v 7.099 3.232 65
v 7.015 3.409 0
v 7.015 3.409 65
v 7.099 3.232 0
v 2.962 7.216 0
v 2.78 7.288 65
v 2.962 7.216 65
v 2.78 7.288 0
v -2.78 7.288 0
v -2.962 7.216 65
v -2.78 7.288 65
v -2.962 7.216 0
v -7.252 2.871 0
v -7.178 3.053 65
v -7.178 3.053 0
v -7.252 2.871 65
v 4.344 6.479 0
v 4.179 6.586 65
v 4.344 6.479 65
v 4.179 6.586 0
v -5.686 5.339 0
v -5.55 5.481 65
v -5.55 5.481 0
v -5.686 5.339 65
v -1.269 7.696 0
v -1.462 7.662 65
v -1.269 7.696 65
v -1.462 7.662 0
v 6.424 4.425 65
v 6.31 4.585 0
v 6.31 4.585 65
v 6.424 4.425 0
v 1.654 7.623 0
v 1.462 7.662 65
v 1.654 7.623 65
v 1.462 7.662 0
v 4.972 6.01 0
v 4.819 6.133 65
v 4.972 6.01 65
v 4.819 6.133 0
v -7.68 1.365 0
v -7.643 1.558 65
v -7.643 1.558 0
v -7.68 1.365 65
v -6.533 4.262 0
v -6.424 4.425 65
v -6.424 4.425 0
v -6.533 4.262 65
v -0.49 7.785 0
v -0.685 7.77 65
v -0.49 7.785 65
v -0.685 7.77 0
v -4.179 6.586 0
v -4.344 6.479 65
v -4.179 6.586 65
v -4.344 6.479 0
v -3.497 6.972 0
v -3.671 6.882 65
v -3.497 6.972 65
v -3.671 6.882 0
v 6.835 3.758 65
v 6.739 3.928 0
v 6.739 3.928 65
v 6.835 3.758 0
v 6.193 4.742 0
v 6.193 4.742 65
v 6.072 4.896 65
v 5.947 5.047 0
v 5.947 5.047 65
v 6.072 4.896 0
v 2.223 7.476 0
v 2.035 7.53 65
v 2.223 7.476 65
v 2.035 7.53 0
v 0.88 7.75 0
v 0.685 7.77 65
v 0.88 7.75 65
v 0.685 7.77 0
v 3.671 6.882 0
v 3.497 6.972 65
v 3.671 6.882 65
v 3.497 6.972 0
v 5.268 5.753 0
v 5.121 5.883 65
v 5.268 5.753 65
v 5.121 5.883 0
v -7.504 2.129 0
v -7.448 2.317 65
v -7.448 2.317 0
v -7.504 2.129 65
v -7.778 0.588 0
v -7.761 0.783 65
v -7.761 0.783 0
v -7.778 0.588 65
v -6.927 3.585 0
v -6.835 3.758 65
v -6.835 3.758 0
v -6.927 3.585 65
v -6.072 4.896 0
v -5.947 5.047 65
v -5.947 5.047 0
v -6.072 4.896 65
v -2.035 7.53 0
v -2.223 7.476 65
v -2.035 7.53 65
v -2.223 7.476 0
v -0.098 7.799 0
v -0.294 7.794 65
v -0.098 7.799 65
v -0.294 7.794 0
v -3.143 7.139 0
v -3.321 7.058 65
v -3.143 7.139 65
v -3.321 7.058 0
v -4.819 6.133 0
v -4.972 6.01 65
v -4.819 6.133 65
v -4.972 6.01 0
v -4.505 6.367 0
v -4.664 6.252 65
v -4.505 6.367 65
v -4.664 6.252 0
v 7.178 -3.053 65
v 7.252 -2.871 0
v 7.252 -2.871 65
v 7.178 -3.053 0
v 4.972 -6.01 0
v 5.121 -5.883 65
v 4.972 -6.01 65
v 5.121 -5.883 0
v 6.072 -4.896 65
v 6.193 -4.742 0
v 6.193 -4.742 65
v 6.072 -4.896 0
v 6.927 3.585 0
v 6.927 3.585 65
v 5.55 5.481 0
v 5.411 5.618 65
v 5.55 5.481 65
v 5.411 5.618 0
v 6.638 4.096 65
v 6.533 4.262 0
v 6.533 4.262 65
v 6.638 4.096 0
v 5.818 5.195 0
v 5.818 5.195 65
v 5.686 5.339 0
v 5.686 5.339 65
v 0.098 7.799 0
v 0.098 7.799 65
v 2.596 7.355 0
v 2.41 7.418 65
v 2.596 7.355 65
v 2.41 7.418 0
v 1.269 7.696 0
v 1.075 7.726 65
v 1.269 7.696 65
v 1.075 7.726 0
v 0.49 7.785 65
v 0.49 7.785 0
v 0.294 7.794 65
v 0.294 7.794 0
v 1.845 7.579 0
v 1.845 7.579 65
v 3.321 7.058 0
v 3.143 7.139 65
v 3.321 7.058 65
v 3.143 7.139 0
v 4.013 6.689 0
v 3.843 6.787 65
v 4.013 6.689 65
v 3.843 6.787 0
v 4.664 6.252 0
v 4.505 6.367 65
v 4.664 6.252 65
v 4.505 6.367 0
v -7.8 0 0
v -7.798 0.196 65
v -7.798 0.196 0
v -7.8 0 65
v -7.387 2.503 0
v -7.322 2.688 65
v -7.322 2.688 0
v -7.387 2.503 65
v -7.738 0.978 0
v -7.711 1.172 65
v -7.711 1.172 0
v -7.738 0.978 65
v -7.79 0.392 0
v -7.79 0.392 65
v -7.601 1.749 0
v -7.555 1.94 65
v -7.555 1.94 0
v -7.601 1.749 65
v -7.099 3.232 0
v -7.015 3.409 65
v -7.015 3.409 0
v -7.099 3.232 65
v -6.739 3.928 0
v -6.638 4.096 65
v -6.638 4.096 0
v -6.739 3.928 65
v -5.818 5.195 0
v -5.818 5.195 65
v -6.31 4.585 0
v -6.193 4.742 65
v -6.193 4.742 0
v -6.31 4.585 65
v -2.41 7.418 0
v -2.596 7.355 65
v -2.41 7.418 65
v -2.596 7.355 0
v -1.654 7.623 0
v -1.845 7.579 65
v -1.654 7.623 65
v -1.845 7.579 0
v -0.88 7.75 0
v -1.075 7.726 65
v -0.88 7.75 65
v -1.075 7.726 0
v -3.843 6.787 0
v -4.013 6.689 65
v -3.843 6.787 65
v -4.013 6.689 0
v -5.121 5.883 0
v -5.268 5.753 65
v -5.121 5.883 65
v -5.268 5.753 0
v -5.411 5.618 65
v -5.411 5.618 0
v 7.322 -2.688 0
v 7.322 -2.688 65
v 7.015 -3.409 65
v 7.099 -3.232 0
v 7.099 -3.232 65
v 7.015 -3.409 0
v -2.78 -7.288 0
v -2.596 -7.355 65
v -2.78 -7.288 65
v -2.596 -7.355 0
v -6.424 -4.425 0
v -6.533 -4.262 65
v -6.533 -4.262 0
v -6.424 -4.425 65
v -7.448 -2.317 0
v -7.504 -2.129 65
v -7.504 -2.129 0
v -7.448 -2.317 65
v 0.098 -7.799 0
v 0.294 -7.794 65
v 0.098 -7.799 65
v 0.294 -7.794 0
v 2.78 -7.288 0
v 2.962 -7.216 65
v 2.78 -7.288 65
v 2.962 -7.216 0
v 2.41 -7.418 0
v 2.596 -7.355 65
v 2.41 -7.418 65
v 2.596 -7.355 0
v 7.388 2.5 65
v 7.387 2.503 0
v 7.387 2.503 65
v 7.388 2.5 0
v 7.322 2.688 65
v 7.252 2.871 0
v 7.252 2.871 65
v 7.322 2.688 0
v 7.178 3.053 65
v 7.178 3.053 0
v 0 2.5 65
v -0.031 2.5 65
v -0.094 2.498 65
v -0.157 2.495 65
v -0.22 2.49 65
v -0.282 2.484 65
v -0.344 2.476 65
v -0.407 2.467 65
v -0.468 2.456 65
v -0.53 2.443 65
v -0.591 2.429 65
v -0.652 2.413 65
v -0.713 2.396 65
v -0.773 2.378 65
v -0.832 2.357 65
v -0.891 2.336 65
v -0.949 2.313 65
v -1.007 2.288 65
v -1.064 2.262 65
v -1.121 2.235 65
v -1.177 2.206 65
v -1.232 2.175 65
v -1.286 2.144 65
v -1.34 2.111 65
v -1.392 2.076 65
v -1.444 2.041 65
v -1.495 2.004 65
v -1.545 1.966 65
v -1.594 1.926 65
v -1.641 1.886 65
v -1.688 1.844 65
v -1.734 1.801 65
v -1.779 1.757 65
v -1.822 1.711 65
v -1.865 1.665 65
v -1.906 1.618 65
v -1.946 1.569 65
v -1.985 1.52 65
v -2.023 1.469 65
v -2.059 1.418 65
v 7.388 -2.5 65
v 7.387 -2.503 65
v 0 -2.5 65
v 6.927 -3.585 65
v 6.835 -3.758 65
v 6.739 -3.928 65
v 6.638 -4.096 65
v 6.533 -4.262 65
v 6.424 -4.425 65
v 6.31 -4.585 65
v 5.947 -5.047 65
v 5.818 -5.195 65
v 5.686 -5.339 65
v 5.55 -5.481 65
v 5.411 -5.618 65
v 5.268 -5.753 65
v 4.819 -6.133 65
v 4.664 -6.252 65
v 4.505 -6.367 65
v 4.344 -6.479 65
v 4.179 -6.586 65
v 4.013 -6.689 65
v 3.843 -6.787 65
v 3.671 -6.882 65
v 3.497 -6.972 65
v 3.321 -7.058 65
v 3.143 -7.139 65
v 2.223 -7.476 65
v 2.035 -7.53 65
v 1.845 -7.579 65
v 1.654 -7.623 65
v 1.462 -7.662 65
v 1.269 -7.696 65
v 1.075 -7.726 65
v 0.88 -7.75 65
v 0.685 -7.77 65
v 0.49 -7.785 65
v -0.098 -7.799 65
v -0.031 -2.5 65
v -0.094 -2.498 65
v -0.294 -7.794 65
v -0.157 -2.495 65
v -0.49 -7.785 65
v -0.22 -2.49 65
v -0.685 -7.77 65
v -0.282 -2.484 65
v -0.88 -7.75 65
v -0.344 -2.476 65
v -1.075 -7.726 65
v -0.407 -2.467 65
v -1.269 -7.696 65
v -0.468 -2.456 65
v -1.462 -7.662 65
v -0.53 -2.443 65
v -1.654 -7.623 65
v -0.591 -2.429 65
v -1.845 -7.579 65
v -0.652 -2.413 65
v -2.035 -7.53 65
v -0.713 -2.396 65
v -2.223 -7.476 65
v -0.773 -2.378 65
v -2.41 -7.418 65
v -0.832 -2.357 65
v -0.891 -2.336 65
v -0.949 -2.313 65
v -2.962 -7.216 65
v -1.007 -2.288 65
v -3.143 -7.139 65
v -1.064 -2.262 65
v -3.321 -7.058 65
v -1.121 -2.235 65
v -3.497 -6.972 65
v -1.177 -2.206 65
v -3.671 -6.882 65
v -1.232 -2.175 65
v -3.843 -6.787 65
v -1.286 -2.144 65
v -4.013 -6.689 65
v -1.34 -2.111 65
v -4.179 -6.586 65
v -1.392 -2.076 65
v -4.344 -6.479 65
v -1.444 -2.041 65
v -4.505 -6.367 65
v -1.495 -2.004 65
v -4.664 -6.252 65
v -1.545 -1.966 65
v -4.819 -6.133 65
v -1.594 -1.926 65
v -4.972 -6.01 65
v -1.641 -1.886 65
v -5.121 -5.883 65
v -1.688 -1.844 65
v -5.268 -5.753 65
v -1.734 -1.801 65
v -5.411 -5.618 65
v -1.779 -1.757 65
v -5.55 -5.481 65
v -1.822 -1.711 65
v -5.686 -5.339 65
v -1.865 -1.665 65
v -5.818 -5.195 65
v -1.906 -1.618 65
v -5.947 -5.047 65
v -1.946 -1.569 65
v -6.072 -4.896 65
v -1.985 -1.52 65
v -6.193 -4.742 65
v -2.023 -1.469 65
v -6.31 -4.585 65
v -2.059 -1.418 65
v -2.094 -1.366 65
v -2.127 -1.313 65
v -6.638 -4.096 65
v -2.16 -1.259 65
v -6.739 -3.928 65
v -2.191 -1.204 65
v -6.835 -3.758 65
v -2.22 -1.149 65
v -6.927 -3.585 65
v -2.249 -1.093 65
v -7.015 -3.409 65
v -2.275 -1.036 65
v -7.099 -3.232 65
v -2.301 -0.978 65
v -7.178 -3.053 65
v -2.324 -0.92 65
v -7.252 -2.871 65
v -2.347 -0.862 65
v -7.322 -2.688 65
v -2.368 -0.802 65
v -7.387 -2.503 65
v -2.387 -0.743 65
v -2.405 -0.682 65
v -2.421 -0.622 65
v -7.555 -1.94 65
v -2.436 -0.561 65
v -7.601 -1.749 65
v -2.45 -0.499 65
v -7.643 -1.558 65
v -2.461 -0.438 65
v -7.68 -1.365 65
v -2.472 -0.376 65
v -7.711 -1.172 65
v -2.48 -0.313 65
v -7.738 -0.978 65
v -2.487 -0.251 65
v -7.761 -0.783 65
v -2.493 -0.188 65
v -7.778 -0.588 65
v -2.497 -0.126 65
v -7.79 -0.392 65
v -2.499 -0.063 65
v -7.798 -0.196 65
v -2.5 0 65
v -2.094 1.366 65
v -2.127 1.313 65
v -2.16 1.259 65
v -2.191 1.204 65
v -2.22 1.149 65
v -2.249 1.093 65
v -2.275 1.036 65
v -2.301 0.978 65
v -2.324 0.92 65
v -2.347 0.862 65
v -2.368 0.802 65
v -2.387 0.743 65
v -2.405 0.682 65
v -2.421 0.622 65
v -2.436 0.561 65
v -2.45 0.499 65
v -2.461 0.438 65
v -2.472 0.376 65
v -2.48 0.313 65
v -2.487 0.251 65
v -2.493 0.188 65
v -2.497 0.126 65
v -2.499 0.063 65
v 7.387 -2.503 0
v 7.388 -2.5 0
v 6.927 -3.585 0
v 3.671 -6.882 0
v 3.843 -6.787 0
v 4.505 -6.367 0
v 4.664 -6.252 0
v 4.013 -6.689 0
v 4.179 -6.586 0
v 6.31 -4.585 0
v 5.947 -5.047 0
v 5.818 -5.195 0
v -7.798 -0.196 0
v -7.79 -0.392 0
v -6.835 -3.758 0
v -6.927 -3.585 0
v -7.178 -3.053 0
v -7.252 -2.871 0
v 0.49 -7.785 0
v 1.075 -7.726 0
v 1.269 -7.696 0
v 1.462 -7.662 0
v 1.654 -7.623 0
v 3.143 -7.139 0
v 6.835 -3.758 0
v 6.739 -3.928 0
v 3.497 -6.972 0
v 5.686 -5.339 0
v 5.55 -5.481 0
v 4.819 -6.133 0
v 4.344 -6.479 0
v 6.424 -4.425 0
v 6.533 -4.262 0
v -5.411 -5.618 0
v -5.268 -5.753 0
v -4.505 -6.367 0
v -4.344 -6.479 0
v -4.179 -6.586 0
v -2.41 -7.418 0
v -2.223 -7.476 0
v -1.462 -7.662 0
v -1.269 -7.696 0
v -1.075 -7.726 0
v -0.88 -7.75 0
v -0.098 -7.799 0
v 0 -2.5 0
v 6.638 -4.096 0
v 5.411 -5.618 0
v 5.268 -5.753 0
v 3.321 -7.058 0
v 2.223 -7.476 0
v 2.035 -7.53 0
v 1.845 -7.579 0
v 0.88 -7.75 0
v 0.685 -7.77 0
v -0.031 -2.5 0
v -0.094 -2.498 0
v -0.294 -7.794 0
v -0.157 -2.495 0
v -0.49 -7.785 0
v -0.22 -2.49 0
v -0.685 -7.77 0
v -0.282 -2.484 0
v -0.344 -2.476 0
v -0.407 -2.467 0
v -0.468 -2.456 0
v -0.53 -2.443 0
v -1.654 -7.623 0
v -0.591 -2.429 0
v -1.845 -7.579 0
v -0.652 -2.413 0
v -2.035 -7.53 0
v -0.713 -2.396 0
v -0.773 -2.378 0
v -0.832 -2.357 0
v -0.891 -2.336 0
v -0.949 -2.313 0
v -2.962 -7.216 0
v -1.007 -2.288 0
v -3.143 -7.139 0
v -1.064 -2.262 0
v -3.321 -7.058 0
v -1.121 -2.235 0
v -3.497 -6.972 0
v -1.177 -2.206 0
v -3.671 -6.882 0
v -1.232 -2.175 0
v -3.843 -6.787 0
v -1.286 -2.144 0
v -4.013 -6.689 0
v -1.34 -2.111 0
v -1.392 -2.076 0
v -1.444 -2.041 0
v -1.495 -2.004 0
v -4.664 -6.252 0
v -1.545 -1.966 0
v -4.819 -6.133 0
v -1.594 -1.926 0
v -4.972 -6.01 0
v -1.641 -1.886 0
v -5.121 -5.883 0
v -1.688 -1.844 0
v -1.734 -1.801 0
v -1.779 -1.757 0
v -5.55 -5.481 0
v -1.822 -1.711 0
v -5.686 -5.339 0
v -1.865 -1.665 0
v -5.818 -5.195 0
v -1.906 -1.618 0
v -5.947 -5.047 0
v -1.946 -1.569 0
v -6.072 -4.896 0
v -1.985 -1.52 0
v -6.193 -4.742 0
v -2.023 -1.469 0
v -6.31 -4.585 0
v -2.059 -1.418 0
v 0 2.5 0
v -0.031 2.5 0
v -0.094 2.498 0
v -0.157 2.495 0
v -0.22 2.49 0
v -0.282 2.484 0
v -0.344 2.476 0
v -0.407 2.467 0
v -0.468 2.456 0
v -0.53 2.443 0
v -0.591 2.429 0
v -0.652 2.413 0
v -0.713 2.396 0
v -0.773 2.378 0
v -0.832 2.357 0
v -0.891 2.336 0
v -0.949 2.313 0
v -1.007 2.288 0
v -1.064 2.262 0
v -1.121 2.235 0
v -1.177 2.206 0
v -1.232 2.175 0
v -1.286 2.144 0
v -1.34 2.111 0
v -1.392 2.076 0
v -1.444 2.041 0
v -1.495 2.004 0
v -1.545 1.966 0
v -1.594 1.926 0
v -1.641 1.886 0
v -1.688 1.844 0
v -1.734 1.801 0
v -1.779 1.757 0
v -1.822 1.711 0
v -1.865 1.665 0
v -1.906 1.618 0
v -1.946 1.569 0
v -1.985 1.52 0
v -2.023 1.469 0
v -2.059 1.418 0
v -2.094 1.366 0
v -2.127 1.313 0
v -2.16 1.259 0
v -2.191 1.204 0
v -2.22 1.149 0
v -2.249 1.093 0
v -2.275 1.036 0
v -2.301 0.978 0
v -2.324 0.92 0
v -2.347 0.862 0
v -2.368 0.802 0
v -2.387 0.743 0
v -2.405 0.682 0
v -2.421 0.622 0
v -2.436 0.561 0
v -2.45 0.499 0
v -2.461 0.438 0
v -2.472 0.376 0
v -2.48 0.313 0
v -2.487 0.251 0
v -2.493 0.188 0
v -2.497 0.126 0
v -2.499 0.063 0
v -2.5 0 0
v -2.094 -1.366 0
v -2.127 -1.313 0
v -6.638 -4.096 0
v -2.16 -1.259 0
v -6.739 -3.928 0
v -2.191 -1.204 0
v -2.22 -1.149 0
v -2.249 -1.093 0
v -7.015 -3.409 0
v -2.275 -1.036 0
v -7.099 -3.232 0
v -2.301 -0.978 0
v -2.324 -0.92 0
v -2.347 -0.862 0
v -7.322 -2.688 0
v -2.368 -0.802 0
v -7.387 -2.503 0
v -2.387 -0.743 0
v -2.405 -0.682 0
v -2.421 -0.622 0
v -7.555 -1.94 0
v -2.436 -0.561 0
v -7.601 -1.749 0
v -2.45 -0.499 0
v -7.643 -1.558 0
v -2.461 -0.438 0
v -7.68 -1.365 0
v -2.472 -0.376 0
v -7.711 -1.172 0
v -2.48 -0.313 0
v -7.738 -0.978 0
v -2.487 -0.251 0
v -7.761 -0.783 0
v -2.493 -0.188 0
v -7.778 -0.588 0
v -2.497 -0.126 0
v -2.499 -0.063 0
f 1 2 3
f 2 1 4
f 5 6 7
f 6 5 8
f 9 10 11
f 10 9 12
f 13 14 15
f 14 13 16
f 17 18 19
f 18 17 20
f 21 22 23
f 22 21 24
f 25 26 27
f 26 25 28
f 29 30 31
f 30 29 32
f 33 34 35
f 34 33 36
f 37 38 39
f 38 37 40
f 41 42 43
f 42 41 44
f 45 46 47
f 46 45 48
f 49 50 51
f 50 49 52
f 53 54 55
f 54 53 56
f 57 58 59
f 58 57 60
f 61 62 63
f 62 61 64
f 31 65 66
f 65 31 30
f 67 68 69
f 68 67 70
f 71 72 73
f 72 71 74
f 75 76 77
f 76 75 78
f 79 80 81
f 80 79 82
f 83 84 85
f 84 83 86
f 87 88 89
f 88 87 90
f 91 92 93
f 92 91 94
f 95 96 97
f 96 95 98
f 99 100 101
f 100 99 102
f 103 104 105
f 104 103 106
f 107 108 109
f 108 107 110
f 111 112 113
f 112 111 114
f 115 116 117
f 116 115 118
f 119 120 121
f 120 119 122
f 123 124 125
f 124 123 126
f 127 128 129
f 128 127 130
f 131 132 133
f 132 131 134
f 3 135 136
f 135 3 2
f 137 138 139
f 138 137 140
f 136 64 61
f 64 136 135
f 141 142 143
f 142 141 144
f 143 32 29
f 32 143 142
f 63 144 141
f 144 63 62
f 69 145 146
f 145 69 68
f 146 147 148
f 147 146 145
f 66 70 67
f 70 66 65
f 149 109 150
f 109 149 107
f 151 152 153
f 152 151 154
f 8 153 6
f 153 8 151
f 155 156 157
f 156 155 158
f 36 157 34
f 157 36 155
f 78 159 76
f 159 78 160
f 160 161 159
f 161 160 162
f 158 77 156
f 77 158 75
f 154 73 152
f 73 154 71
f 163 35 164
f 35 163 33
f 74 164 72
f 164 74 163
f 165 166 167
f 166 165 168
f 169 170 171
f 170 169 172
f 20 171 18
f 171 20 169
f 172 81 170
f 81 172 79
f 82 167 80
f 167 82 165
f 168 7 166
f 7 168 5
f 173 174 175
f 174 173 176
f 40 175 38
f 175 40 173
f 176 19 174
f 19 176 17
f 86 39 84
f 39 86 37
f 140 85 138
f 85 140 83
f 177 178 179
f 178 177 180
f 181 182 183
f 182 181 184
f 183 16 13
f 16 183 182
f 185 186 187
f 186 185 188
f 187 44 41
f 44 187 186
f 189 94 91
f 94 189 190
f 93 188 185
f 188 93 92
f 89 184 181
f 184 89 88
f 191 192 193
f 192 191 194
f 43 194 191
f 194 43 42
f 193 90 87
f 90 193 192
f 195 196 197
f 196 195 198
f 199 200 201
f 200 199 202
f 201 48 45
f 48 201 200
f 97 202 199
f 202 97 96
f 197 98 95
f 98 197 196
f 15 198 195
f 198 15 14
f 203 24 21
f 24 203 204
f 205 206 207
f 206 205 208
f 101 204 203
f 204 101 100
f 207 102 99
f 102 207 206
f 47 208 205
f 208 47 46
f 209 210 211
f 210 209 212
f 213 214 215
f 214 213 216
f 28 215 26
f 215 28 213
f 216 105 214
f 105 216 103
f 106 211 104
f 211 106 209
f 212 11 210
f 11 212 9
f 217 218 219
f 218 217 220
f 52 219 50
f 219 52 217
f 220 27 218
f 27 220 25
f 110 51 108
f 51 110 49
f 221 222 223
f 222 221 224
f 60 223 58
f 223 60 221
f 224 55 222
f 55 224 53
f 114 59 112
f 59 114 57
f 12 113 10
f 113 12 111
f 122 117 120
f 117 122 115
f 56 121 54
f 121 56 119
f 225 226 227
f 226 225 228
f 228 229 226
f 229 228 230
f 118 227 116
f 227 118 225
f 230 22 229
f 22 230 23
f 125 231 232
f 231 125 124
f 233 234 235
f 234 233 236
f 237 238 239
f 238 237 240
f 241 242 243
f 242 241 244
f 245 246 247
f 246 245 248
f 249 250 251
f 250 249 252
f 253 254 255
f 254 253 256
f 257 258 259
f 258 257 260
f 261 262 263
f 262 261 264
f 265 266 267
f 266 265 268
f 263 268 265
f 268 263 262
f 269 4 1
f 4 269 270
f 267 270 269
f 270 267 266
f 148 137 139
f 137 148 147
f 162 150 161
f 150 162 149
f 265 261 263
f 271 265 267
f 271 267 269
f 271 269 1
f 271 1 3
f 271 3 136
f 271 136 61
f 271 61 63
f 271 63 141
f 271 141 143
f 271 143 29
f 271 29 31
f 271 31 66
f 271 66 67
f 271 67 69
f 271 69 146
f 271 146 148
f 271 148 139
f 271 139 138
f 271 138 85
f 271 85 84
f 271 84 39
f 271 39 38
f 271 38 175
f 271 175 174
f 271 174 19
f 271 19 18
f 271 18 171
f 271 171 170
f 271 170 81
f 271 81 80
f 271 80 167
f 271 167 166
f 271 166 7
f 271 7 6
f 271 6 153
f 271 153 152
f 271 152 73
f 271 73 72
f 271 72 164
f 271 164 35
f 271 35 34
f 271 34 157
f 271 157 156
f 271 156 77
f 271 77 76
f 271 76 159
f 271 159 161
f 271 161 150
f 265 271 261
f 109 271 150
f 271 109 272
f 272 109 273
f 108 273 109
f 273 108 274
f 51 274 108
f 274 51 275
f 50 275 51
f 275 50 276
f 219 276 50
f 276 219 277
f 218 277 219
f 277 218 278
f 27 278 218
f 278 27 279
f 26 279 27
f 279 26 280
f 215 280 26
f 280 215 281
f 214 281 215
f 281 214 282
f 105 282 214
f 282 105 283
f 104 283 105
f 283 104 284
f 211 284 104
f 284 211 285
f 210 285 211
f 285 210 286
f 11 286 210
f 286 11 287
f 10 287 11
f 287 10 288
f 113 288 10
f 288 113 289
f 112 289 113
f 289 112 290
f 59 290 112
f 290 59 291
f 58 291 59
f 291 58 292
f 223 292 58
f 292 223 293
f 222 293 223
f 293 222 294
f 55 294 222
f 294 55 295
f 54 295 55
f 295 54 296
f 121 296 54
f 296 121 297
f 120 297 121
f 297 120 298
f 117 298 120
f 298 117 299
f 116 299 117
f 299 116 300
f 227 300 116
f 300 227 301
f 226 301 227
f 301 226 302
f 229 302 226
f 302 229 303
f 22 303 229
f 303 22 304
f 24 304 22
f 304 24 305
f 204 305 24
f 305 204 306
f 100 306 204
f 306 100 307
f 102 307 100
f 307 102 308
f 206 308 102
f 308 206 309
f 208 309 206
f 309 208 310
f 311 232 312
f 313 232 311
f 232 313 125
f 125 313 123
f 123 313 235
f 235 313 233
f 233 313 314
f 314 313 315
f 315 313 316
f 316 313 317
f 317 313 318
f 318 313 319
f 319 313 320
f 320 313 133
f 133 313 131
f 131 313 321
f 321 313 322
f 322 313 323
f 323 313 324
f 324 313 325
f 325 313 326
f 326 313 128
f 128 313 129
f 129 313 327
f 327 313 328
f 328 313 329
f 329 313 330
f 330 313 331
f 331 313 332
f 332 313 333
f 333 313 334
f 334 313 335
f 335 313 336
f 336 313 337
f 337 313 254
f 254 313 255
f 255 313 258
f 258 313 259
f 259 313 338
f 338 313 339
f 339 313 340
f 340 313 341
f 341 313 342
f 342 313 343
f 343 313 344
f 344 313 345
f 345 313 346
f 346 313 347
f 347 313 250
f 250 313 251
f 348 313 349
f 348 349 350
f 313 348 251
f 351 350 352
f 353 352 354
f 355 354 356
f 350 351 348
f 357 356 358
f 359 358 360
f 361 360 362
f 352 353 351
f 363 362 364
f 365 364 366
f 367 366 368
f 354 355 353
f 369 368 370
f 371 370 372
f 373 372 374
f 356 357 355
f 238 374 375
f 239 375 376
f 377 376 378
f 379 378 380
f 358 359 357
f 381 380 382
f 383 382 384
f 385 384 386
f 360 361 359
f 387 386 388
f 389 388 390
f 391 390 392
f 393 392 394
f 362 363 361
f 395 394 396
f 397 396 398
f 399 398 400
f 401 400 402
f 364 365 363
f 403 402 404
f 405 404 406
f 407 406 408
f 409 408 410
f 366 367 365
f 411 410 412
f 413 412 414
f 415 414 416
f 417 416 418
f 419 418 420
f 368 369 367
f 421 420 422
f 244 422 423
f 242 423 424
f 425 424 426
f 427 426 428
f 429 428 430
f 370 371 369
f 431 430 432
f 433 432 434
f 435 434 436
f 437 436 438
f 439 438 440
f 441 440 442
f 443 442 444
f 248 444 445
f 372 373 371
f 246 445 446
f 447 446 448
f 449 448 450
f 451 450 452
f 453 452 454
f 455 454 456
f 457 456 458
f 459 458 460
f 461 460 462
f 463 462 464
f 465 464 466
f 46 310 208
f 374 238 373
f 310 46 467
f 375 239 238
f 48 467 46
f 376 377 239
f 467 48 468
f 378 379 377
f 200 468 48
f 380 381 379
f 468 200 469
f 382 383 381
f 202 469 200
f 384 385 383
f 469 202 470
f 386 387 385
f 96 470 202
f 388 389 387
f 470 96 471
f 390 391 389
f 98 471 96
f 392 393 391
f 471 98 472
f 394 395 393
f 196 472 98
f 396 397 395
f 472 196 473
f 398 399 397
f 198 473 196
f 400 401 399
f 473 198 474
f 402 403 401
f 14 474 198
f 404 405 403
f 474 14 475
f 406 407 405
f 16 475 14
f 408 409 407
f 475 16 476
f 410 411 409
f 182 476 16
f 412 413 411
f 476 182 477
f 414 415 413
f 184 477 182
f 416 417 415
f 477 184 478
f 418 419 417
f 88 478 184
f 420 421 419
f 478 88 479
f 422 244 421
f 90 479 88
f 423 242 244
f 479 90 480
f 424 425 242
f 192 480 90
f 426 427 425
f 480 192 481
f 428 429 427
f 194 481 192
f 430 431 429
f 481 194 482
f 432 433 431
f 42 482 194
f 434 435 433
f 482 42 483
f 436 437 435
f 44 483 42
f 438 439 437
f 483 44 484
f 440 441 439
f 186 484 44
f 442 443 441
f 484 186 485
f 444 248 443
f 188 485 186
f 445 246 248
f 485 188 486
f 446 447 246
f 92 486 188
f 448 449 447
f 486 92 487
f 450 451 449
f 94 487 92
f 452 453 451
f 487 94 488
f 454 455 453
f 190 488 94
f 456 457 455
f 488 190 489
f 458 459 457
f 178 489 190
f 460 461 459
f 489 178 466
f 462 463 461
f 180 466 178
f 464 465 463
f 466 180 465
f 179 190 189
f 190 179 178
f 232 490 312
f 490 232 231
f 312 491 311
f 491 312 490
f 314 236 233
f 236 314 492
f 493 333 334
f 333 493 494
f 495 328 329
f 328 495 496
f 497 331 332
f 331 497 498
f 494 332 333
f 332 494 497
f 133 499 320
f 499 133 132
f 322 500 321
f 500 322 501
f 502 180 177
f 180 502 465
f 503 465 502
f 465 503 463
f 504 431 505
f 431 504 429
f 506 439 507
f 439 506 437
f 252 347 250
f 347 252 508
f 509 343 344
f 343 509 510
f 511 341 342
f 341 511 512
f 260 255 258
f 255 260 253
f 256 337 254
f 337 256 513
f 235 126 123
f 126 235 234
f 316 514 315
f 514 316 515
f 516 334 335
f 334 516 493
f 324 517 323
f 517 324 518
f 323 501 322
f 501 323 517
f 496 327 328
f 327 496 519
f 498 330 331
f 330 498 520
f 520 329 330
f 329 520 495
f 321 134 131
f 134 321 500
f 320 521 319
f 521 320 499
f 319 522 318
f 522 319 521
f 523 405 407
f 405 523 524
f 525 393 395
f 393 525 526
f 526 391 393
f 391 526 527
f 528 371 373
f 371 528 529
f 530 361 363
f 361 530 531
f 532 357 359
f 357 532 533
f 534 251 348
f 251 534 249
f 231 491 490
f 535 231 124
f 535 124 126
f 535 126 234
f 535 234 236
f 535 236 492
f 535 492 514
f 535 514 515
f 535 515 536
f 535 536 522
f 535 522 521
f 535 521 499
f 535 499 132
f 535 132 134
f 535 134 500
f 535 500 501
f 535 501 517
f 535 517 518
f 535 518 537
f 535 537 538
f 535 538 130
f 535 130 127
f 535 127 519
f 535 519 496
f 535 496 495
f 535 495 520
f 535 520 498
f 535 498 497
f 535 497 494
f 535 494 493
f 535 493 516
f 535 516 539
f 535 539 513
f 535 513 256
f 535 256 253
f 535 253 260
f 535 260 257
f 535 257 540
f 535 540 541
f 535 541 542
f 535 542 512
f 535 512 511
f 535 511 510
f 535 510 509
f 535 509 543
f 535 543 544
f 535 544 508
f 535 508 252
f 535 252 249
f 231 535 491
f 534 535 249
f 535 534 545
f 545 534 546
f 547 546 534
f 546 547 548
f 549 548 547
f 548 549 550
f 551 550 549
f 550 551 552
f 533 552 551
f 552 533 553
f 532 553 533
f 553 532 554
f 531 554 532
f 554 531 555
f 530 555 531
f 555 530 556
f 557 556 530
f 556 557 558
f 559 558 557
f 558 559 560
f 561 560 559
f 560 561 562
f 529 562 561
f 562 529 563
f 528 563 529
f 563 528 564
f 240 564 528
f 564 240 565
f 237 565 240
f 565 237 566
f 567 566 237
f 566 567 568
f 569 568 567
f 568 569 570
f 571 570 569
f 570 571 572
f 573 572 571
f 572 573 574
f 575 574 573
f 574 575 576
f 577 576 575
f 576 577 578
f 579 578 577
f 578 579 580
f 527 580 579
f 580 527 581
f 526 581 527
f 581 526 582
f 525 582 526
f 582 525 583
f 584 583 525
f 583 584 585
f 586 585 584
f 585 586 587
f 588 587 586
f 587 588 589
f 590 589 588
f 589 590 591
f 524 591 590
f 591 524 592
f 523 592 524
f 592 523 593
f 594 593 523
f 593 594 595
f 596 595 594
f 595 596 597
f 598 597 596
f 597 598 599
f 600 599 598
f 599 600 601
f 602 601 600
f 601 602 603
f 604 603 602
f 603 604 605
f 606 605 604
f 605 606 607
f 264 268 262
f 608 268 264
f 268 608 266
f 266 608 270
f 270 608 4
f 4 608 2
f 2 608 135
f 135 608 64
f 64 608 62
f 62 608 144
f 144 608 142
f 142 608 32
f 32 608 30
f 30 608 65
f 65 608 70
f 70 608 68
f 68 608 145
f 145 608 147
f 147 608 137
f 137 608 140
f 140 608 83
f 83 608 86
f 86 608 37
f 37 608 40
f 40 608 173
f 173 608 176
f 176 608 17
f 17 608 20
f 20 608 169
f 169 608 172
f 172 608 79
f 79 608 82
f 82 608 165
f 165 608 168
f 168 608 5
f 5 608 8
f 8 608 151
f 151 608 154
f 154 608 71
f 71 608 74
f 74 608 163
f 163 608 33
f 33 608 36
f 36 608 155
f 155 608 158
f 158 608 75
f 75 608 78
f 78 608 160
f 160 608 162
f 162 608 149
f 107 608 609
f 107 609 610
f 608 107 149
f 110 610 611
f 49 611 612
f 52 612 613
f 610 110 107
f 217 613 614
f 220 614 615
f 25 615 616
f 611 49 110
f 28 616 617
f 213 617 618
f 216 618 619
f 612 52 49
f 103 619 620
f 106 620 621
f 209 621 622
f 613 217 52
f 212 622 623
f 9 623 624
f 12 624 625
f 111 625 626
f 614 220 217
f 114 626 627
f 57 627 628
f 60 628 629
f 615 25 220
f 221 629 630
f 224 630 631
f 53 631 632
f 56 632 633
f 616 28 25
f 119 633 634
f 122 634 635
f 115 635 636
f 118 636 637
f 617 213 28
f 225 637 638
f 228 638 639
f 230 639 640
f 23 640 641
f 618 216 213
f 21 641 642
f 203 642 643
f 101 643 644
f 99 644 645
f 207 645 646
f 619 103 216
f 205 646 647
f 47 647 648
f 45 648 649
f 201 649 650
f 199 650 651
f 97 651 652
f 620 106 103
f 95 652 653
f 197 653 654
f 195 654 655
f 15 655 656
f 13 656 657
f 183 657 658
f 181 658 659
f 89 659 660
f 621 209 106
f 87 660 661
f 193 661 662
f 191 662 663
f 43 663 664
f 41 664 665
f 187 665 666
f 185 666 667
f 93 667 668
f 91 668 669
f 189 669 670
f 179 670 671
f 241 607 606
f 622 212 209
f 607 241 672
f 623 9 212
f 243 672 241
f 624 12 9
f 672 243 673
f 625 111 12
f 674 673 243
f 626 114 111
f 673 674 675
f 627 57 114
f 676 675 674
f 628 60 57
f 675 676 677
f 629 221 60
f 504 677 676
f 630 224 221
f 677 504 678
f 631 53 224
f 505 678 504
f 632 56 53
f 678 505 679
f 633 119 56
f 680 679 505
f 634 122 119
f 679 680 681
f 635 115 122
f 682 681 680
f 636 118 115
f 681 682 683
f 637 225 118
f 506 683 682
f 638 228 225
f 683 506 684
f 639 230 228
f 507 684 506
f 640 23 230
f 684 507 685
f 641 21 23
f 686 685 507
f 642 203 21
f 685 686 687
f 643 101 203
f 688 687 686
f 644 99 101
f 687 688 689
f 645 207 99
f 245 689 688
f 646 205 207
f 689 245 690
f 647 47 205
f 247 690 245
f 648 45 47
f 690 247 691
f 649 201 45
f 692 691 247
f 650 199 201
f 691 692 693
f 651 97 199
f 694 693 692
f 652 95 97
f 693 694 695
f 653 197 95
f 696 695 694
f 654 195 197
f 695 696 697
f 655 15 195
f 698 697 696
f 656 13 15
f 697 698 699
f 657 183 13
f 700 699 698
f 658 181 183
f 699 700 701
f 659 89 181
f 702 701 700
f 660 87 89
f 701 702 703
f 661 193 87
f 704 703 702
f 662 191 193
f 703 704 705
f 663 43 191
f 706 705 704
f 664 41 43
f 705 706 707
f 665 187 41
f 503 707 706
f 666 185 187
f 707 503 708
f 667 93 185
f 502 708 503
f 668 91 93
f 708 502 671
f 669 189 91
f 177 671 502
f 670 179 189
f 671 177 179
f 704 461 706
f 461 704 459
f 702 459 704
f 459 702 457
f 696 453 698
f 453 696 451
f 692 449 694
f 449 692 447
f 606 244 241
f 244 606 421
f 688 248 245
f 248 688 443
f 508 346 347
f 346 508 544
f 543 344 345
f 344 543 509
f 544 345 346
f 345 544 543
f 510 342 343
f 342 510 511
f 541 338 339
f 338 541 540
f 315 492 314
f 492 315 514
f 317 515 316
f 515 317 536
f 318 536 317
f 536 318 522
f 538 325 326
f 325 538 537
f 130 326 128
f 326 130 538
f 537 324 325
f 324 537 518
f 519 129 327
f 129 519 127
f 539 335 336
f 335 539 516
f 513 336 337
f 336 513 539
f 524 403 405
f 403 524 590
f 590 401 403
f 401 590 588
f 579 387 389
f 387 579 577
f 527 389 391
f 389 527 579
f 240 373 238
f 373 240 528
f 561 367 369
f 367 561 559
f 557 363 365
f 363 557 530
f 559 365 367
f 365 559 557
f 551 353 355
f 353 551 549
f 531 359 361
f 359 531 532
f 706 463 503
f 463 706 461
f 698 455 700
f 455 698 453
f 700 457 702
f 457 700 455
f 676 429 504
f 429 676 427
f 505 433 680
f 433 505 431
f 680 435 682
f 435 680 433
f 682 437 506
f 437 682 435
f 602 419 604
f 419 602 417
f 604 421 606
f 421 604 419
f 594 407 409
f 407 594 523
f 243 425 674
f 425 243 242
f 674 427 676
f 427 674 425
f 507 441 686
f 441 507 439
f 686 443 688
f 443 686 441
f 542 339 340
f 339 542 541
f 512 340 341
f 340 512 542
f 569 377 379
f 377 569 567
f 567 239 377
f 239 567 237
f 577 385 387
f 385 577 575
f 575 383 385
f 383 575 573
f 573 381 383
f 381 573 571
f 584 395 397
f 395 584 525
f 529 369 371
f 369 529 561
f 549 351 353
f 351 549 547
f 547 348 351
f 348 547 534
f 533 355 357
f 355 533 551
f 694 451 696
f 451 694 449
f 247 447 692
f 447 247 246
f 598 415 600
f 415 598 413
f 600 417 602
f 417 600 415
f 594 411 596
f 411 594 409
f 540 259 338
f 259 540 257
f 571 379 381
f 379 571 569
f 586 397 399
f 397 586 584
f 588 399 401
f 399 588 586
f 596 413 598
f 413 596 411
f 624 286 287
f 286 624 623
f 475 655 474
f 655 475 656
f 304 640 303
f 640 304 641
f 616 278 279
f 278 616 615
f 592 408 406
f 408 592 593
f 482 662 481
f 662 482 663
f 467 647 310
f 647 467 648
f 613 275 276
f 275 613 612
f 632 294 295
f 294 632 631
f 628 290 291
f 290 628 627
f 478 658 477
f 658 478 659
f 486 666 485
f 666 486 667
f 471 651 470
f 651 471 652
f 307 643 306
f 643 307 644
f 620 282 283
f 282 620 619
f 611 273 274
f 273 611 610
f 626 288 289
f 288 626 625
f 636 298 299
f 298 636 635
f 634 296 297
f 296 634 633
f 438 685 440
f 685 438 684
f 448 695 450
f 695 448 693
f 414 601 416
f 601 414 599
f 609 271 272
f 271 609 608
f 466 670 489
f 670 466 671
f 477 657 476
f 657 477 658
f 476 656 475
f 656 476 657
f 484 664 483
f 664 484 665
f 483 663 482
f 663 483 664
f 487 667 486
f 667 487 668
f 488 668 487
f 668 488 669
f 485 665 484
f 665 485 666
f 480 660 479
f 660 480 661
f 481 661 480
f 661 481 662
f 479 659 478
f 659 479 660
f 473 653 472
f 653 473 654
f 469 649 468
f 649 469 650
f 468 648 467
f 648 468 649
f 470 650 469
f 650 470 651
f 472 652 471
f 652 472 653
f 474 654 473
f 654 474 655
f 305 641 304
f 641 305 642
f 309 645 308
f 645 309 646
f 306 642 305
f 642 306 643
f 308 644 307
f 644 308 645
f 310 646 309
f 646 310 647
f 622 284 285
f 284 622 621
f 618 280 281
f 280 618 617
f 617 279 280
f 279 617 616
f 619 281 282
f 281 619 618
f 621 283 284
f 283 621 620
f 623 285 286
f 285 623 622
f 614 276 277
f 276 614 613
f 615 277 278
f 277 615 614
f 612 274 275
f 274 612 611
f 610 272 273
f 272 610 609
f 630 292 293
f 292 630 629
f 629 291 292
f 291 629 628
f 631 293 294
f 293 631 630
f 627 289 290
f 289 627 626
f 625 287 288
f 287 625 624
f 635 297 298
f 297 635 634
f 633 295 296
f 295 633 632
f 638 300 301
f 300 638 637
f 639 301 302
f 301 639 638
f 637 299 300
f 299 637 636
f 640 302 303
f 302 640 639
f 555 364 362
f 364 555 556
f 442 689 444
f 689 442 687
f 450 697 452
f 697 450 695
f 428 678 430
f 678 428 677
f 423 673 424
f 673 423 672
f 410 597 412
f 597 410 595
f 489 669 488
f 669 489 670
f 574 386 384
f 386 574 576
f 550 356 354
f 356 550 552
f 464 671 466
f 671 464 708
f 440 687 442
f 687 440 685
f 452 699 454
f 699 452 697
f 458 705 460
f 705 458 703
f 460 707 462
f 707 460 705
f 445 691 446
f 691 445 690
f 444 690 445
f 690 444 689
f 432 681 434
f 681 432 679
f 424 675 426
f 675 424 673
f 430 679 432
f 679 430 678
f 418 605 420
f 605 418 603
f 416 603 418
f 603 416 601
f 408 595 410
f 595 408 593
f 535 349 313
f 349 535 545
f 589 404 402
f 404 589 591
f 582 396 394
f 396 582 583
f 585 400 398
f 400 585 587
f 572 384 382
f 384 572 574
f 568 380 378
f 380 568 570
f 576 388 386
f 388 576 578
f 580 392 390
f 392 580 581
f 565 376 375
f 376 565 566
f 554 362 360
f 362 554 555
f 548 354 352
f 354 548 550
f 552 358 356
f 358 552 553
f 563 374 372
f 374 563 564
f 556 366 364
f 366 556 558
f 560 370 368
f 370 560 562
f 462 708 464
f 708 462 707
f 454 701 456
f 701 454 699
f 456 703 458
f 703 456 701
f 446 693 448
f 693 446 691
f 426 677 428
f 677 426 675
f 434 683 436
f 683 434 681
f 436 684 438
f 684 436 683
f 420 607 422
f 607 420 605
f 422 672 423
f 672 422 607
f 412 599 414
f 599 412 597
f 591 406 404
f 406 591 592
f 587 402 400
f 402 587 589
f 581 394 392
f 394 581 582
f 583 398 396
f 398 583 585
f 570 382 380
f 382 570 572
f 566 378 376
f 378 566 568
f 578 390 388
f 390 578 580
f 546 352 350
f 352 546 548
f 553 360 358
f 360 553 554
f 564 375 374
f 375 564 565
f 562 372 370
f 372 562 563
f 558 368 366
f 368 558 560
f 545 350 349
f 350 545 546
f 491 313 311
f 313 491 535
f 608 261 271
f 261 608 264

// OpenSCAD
//OpenMoto Trials Namwe Board
//Licensed under the TAPR Open Hardware License (www.tapr.org/OHL)
//This model created by Aaron Monger (amonger@gmail.com)
//For this model and more new designs, visit mongerrr.github.io
//If you would like to support the design of parts like these, please make a donation, however big or small at paypal.me/mongerrr

$fn=250;
pin = 16/2;
bore = 65;

pin1=pin-0.2;
difference(){
    cylinder(r=pin1,bore);
    cylinder(r=2.5,bore);
    translate([0,-2.5,0])cube([pin,5,bore]);
};
